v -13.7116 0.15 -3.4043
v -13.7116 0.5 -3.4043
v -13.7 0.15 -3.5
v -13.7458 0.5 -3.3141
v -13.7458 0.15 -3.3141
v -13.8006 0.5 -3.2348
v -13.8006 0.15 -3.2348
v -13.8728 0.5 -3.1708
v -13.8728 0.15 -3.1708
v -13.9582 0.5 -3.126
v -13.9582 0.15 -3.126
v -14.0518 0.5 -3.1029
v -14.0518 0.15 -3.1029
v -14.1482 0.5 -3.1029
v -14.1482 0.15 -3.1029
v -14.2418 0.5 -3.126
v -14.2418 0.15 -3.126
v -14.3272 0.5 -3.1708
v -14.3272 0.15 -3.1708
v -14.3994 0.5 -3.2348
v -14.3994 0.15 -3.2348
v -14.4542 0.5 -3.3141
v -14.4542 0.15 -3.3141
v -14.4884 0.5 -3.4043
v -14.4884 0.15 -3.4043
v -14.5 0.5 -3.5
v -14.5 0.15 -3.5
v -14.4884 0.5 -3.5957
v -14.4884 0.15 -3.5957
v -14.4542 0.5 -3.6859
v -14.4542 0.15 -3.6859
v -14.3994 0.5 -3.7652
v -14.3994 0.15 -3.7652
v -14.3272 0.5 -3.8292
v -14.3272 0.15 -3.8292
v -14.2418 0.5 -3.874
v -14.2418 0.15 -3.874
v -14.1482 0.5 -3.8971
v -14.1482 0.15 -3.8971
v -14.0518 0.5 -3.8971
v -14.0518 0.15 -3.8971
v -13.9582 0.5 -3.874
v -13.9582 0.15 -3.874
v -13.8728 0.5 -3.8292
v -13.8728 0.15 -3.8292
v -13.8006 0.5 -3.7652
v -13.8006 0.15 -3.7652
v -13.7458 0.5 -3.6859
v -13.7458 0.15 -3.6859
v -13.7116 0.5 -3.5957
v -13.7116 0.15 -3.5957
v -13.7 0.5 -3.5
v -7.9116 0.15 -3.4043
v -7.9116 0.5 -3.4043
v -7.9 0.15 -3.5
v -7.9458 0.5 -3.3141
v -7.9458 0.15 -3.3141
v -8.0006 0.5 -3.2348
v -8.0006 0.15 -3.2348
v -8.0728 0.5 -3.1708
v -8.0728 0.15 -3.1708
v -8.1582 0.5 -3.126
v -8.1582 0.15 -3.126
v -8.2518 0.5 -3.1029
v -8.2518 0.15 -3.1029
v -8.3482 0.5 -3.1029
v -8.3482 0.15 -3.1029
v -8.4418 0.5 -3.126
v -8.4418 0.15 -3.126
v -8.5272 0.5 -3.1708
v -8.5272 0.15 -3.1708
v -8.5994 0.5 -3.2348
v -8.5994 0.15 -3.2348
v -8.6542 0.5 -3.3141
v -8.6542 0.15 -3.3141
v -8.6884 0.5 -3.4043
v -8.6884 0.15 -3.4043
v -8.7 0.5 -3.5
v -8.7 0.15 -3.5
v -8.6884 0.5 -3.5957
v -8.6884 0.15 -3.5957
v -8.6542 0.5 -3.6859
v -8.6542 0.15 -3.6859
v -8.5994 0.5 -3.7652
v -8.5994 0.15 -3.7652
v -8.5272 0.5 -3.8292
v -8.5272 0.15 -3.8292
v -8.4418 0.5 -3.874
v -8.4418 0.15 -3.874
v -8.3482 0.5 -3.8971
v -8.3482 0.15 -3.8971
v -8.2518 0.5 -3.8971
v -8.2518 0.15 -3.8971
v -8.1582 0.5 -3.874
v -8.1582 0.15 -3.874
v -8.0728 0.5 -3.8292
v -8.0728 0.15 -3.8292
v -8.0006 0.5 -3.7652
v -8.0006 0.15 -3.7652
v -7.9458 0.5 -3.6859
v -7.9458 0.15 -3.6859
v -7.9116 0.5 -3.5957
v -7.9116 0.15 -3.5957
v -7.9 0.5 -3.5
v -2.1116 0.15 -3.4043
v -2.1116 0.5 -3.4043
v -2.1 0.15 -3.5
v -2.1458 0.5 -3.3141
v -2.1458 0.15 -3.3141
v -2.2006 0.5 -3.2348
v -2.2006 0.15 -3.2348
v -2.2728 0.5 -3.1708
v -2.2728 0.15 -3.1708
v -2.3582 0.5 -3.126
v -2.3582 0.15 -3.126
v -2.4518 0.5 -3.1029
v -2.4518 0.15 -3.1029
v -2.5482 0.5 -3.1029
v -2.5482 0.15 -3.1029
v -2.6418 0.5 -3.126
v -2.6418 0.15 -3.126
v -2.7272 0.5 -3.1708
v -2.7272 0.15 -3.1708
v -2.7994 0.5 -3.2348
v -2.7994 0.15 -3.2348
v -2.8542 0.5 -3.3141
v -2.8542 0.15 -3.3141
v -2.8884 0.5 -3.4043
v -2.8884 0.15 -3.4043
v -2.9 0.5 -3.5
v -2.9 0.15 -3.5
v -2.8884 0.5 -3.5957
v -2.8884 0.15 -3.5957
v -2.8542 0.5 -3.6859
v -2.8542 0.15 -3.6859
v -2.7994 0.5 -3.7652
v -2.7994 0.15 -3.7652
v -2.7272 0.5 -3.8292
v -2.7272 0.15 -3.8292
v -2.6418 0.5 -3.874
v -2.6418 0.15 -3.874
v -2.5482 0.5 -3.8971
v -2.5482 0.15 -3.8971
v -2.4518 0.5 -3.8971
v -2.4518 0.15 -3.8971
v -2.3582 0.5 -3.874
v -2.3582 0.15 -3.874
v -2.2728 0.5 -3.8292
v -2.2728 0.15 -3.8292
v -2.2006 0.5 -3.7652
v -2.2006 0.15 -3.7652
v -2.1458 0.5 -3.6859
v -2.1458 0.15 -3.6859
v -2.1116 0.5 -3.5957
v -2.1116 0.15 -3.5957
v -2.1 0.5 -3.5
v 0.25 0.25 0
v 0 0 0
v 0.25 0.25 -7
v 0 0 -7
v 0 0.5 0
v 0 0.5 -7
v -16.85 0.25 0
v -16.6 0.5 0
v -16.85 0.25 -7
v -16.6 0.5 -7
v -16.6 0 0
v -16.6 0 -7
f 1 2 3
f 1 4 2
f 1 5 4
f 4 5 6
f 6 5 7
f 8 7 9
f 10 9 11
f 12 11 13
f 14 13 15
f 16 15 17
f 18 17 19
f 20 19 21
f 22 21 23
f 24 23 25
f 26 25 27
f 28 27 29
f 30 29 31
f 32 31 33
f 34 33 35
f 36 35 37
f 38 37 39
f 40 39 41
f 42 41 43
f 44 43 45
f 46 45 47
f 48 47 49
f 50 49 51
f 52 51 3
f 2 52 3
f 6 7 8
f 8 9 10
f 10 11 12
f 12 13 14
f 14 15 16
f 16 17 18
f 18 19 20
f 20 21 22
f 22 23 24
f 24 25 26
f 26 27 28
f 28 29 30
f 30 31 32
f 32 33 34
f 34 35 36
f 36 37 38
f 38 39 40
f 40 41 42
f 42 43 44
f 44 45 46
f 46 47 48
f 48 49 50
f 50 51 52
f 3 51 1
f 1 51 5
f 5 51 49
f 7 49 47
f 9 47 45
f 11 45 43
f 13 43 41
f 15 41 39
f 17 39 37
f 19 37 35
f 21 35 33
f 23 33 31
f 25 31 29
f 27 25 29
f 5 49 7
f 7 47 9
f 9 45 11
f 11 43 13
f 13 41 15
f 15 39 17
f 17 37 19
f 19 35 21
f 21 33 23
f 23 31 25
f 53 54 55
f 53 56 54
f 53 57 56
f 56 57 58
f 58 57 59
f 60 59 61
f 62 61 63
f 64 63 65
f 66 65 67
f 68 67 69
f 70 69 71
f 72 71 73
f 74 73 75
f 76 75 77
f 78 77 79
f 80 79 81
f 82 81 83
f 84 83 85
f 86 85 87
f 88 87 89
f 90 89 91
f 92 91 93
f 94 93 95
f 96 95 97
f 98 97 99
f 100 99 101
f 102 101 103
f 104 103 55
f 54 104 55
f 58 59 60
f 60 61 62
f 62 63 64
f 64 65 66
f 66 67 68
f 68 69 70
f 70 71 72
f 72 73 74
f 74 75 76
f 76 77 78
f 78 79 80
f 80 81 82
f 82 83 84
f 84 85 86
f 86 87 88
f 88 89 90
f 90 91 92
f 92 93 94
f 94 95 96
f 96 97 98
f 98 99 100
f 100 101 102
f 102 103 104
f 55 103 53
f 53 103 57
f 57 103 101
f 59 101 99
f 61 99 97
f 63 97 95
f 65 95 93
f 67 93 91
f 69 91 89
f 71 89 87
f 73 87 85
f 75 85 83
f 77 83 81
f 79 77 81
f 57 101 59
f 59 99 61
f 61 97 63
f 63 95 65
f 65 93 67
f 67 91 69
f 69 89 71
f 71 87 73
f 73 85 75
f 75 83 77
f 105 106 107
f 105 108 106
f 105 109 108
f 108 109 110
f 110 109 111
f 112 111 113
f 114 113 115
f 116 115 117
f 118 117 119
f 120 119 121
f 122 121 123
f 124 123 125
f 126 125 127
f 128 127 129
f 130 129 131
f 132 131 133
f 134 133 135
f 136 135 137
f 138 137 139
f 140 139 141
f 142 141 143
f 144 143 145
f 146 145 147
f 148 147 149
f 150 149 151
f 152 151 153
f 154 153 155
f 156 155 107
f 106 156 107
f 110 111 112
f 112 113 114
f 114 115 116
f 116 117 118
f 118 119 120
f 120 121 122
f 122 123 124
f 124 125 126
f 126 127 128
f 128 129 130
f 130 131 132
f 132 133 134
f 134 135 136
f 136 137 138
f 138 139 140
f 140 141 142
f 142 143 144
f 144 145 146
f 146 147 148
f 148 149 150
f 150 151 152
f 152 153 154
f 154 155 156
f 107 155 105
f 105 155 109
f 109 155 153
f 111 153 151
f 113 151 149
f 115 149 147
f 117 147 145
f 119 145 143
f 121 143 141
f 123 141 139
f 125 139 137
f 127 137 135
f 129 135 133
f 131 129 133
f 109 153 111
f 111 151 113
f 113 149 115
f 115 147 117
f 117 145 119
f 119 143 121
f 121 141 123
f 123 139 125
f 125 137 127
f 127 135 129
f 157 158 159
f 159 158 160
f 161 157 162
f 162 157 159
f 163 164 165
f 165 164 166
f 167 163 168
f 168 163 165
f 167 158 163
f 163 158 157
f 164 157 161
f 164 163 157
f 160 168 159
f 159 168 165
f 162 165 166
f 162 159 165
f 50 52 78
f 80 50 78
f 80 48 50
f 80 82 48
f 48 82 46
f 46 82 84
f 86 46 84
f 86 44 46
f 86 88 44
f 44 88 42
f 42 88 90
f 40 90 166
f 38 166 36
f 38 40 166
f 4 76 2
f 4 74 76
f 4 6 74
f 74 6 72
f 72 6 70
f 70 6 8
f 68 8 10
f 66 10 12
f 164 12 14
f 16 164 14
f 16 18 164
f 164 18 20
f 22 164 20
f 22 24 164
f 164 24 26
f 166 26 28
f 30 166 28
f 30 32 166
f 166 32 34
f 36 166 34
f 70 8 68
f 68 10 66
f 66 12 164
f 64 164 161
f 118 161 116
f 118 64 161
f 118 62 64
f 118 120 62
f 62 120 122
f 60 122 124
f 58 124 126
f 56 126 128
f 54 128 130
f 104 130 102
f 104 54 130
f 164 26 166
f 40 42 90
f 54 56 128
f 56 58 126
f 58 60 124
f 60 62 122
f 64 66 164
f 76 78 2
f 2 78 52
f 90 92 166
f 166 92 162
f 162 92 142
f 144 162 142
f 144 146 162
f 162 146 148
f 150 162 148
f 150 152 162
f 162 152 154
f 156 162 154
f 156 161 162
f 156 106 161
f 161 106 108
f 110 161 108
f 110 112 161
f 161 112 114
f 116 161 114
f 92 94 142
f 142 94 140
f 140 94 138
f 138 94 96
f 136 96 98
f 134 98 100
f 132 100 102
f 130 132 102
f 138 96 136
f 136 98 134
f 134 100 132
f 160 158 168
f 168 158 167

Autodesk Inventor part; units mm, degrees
ref_plane "YZ Plane" through (0, 0, 0) normal (1, 0, 0) x (0, 1, 0)
ref_plane "XZ Plane" through (0, 0, 0) normal (0, 1, 0) x (-1, 0, 0)
ref_plane "XY Plane" through (0, 0, 0) normal (0, 0, 1) x (1, 0, 0)
sketch "Boceto1" plane through (0, 0, 0) normal (0, 1, 0) x (-1, 0, 0)
  line L0 (0, 0) -> (0, -7)
  line L1 (0, -7) -> (16.6, -7)
  line L2 (16.6, -7) -> (16.6, 0)
  line L3 (16.6, 0) -> (0, 0)
  dimension "d0" = 7
  dimension "d1" = 16.6
  dimension "d2" = 7
extrude "Extrusión1" add sketch "Boceto1" along normal blind 0.5
sketch "Boceto2" plane through (-16.6, 0, 0) normal (0, 0, 1) x (1, 0, 0)
  line L0 (16.6, 0.5) -> (16.6, 0)
  line L1 (16.6, 0.5) -> (16.85, 0.25)
  line L2 (16.85, 0.25) -> (16.6, 0)
  line L3 (0, 0) -> (16.6, 0) projected
  line L4 (16.6, 0) -> (16.6, 0.5) projected
  line L5 (0, 0.5) -> (16.6, 0.5) projected
  line L6 (0, 0) -> (0, 0.5) projected
  line L7 (0, 0.5) -> (0, 0)
  line L8 (0, 0.5) -> (-0.25, 0.25)
  line L9 (-0.25, 0.25) -> (0, 0)
  line L10 (0, 0) -> (0, 0.5)
extrude "Extrusión2" add sketch "Boceto2" against normal blind 7 contours L1 L2 L0 | L6 L9 L8
sketch "Boceto3" plane through (0, 0.5, 0) normal (0, 1, 0) x (1, 0, 0)
  line L0 (-16.6, 7) -> (-16.6, 0) projected
  line L1 (0, 0) -> (0, 7) projected
  circle A0 centre (-8.3, 3.5) radius 0.4
  circle A1 centre (-14.1, 3.5) radius 0.4
  circle A2 centre (-2.5, 3.5) radius 0.4
  dimension "d8" = 0.8
  dimension "d9" = 0.8
extrude "Extrusión3" cut sketch "Boceto3" against normal blind 0.35
